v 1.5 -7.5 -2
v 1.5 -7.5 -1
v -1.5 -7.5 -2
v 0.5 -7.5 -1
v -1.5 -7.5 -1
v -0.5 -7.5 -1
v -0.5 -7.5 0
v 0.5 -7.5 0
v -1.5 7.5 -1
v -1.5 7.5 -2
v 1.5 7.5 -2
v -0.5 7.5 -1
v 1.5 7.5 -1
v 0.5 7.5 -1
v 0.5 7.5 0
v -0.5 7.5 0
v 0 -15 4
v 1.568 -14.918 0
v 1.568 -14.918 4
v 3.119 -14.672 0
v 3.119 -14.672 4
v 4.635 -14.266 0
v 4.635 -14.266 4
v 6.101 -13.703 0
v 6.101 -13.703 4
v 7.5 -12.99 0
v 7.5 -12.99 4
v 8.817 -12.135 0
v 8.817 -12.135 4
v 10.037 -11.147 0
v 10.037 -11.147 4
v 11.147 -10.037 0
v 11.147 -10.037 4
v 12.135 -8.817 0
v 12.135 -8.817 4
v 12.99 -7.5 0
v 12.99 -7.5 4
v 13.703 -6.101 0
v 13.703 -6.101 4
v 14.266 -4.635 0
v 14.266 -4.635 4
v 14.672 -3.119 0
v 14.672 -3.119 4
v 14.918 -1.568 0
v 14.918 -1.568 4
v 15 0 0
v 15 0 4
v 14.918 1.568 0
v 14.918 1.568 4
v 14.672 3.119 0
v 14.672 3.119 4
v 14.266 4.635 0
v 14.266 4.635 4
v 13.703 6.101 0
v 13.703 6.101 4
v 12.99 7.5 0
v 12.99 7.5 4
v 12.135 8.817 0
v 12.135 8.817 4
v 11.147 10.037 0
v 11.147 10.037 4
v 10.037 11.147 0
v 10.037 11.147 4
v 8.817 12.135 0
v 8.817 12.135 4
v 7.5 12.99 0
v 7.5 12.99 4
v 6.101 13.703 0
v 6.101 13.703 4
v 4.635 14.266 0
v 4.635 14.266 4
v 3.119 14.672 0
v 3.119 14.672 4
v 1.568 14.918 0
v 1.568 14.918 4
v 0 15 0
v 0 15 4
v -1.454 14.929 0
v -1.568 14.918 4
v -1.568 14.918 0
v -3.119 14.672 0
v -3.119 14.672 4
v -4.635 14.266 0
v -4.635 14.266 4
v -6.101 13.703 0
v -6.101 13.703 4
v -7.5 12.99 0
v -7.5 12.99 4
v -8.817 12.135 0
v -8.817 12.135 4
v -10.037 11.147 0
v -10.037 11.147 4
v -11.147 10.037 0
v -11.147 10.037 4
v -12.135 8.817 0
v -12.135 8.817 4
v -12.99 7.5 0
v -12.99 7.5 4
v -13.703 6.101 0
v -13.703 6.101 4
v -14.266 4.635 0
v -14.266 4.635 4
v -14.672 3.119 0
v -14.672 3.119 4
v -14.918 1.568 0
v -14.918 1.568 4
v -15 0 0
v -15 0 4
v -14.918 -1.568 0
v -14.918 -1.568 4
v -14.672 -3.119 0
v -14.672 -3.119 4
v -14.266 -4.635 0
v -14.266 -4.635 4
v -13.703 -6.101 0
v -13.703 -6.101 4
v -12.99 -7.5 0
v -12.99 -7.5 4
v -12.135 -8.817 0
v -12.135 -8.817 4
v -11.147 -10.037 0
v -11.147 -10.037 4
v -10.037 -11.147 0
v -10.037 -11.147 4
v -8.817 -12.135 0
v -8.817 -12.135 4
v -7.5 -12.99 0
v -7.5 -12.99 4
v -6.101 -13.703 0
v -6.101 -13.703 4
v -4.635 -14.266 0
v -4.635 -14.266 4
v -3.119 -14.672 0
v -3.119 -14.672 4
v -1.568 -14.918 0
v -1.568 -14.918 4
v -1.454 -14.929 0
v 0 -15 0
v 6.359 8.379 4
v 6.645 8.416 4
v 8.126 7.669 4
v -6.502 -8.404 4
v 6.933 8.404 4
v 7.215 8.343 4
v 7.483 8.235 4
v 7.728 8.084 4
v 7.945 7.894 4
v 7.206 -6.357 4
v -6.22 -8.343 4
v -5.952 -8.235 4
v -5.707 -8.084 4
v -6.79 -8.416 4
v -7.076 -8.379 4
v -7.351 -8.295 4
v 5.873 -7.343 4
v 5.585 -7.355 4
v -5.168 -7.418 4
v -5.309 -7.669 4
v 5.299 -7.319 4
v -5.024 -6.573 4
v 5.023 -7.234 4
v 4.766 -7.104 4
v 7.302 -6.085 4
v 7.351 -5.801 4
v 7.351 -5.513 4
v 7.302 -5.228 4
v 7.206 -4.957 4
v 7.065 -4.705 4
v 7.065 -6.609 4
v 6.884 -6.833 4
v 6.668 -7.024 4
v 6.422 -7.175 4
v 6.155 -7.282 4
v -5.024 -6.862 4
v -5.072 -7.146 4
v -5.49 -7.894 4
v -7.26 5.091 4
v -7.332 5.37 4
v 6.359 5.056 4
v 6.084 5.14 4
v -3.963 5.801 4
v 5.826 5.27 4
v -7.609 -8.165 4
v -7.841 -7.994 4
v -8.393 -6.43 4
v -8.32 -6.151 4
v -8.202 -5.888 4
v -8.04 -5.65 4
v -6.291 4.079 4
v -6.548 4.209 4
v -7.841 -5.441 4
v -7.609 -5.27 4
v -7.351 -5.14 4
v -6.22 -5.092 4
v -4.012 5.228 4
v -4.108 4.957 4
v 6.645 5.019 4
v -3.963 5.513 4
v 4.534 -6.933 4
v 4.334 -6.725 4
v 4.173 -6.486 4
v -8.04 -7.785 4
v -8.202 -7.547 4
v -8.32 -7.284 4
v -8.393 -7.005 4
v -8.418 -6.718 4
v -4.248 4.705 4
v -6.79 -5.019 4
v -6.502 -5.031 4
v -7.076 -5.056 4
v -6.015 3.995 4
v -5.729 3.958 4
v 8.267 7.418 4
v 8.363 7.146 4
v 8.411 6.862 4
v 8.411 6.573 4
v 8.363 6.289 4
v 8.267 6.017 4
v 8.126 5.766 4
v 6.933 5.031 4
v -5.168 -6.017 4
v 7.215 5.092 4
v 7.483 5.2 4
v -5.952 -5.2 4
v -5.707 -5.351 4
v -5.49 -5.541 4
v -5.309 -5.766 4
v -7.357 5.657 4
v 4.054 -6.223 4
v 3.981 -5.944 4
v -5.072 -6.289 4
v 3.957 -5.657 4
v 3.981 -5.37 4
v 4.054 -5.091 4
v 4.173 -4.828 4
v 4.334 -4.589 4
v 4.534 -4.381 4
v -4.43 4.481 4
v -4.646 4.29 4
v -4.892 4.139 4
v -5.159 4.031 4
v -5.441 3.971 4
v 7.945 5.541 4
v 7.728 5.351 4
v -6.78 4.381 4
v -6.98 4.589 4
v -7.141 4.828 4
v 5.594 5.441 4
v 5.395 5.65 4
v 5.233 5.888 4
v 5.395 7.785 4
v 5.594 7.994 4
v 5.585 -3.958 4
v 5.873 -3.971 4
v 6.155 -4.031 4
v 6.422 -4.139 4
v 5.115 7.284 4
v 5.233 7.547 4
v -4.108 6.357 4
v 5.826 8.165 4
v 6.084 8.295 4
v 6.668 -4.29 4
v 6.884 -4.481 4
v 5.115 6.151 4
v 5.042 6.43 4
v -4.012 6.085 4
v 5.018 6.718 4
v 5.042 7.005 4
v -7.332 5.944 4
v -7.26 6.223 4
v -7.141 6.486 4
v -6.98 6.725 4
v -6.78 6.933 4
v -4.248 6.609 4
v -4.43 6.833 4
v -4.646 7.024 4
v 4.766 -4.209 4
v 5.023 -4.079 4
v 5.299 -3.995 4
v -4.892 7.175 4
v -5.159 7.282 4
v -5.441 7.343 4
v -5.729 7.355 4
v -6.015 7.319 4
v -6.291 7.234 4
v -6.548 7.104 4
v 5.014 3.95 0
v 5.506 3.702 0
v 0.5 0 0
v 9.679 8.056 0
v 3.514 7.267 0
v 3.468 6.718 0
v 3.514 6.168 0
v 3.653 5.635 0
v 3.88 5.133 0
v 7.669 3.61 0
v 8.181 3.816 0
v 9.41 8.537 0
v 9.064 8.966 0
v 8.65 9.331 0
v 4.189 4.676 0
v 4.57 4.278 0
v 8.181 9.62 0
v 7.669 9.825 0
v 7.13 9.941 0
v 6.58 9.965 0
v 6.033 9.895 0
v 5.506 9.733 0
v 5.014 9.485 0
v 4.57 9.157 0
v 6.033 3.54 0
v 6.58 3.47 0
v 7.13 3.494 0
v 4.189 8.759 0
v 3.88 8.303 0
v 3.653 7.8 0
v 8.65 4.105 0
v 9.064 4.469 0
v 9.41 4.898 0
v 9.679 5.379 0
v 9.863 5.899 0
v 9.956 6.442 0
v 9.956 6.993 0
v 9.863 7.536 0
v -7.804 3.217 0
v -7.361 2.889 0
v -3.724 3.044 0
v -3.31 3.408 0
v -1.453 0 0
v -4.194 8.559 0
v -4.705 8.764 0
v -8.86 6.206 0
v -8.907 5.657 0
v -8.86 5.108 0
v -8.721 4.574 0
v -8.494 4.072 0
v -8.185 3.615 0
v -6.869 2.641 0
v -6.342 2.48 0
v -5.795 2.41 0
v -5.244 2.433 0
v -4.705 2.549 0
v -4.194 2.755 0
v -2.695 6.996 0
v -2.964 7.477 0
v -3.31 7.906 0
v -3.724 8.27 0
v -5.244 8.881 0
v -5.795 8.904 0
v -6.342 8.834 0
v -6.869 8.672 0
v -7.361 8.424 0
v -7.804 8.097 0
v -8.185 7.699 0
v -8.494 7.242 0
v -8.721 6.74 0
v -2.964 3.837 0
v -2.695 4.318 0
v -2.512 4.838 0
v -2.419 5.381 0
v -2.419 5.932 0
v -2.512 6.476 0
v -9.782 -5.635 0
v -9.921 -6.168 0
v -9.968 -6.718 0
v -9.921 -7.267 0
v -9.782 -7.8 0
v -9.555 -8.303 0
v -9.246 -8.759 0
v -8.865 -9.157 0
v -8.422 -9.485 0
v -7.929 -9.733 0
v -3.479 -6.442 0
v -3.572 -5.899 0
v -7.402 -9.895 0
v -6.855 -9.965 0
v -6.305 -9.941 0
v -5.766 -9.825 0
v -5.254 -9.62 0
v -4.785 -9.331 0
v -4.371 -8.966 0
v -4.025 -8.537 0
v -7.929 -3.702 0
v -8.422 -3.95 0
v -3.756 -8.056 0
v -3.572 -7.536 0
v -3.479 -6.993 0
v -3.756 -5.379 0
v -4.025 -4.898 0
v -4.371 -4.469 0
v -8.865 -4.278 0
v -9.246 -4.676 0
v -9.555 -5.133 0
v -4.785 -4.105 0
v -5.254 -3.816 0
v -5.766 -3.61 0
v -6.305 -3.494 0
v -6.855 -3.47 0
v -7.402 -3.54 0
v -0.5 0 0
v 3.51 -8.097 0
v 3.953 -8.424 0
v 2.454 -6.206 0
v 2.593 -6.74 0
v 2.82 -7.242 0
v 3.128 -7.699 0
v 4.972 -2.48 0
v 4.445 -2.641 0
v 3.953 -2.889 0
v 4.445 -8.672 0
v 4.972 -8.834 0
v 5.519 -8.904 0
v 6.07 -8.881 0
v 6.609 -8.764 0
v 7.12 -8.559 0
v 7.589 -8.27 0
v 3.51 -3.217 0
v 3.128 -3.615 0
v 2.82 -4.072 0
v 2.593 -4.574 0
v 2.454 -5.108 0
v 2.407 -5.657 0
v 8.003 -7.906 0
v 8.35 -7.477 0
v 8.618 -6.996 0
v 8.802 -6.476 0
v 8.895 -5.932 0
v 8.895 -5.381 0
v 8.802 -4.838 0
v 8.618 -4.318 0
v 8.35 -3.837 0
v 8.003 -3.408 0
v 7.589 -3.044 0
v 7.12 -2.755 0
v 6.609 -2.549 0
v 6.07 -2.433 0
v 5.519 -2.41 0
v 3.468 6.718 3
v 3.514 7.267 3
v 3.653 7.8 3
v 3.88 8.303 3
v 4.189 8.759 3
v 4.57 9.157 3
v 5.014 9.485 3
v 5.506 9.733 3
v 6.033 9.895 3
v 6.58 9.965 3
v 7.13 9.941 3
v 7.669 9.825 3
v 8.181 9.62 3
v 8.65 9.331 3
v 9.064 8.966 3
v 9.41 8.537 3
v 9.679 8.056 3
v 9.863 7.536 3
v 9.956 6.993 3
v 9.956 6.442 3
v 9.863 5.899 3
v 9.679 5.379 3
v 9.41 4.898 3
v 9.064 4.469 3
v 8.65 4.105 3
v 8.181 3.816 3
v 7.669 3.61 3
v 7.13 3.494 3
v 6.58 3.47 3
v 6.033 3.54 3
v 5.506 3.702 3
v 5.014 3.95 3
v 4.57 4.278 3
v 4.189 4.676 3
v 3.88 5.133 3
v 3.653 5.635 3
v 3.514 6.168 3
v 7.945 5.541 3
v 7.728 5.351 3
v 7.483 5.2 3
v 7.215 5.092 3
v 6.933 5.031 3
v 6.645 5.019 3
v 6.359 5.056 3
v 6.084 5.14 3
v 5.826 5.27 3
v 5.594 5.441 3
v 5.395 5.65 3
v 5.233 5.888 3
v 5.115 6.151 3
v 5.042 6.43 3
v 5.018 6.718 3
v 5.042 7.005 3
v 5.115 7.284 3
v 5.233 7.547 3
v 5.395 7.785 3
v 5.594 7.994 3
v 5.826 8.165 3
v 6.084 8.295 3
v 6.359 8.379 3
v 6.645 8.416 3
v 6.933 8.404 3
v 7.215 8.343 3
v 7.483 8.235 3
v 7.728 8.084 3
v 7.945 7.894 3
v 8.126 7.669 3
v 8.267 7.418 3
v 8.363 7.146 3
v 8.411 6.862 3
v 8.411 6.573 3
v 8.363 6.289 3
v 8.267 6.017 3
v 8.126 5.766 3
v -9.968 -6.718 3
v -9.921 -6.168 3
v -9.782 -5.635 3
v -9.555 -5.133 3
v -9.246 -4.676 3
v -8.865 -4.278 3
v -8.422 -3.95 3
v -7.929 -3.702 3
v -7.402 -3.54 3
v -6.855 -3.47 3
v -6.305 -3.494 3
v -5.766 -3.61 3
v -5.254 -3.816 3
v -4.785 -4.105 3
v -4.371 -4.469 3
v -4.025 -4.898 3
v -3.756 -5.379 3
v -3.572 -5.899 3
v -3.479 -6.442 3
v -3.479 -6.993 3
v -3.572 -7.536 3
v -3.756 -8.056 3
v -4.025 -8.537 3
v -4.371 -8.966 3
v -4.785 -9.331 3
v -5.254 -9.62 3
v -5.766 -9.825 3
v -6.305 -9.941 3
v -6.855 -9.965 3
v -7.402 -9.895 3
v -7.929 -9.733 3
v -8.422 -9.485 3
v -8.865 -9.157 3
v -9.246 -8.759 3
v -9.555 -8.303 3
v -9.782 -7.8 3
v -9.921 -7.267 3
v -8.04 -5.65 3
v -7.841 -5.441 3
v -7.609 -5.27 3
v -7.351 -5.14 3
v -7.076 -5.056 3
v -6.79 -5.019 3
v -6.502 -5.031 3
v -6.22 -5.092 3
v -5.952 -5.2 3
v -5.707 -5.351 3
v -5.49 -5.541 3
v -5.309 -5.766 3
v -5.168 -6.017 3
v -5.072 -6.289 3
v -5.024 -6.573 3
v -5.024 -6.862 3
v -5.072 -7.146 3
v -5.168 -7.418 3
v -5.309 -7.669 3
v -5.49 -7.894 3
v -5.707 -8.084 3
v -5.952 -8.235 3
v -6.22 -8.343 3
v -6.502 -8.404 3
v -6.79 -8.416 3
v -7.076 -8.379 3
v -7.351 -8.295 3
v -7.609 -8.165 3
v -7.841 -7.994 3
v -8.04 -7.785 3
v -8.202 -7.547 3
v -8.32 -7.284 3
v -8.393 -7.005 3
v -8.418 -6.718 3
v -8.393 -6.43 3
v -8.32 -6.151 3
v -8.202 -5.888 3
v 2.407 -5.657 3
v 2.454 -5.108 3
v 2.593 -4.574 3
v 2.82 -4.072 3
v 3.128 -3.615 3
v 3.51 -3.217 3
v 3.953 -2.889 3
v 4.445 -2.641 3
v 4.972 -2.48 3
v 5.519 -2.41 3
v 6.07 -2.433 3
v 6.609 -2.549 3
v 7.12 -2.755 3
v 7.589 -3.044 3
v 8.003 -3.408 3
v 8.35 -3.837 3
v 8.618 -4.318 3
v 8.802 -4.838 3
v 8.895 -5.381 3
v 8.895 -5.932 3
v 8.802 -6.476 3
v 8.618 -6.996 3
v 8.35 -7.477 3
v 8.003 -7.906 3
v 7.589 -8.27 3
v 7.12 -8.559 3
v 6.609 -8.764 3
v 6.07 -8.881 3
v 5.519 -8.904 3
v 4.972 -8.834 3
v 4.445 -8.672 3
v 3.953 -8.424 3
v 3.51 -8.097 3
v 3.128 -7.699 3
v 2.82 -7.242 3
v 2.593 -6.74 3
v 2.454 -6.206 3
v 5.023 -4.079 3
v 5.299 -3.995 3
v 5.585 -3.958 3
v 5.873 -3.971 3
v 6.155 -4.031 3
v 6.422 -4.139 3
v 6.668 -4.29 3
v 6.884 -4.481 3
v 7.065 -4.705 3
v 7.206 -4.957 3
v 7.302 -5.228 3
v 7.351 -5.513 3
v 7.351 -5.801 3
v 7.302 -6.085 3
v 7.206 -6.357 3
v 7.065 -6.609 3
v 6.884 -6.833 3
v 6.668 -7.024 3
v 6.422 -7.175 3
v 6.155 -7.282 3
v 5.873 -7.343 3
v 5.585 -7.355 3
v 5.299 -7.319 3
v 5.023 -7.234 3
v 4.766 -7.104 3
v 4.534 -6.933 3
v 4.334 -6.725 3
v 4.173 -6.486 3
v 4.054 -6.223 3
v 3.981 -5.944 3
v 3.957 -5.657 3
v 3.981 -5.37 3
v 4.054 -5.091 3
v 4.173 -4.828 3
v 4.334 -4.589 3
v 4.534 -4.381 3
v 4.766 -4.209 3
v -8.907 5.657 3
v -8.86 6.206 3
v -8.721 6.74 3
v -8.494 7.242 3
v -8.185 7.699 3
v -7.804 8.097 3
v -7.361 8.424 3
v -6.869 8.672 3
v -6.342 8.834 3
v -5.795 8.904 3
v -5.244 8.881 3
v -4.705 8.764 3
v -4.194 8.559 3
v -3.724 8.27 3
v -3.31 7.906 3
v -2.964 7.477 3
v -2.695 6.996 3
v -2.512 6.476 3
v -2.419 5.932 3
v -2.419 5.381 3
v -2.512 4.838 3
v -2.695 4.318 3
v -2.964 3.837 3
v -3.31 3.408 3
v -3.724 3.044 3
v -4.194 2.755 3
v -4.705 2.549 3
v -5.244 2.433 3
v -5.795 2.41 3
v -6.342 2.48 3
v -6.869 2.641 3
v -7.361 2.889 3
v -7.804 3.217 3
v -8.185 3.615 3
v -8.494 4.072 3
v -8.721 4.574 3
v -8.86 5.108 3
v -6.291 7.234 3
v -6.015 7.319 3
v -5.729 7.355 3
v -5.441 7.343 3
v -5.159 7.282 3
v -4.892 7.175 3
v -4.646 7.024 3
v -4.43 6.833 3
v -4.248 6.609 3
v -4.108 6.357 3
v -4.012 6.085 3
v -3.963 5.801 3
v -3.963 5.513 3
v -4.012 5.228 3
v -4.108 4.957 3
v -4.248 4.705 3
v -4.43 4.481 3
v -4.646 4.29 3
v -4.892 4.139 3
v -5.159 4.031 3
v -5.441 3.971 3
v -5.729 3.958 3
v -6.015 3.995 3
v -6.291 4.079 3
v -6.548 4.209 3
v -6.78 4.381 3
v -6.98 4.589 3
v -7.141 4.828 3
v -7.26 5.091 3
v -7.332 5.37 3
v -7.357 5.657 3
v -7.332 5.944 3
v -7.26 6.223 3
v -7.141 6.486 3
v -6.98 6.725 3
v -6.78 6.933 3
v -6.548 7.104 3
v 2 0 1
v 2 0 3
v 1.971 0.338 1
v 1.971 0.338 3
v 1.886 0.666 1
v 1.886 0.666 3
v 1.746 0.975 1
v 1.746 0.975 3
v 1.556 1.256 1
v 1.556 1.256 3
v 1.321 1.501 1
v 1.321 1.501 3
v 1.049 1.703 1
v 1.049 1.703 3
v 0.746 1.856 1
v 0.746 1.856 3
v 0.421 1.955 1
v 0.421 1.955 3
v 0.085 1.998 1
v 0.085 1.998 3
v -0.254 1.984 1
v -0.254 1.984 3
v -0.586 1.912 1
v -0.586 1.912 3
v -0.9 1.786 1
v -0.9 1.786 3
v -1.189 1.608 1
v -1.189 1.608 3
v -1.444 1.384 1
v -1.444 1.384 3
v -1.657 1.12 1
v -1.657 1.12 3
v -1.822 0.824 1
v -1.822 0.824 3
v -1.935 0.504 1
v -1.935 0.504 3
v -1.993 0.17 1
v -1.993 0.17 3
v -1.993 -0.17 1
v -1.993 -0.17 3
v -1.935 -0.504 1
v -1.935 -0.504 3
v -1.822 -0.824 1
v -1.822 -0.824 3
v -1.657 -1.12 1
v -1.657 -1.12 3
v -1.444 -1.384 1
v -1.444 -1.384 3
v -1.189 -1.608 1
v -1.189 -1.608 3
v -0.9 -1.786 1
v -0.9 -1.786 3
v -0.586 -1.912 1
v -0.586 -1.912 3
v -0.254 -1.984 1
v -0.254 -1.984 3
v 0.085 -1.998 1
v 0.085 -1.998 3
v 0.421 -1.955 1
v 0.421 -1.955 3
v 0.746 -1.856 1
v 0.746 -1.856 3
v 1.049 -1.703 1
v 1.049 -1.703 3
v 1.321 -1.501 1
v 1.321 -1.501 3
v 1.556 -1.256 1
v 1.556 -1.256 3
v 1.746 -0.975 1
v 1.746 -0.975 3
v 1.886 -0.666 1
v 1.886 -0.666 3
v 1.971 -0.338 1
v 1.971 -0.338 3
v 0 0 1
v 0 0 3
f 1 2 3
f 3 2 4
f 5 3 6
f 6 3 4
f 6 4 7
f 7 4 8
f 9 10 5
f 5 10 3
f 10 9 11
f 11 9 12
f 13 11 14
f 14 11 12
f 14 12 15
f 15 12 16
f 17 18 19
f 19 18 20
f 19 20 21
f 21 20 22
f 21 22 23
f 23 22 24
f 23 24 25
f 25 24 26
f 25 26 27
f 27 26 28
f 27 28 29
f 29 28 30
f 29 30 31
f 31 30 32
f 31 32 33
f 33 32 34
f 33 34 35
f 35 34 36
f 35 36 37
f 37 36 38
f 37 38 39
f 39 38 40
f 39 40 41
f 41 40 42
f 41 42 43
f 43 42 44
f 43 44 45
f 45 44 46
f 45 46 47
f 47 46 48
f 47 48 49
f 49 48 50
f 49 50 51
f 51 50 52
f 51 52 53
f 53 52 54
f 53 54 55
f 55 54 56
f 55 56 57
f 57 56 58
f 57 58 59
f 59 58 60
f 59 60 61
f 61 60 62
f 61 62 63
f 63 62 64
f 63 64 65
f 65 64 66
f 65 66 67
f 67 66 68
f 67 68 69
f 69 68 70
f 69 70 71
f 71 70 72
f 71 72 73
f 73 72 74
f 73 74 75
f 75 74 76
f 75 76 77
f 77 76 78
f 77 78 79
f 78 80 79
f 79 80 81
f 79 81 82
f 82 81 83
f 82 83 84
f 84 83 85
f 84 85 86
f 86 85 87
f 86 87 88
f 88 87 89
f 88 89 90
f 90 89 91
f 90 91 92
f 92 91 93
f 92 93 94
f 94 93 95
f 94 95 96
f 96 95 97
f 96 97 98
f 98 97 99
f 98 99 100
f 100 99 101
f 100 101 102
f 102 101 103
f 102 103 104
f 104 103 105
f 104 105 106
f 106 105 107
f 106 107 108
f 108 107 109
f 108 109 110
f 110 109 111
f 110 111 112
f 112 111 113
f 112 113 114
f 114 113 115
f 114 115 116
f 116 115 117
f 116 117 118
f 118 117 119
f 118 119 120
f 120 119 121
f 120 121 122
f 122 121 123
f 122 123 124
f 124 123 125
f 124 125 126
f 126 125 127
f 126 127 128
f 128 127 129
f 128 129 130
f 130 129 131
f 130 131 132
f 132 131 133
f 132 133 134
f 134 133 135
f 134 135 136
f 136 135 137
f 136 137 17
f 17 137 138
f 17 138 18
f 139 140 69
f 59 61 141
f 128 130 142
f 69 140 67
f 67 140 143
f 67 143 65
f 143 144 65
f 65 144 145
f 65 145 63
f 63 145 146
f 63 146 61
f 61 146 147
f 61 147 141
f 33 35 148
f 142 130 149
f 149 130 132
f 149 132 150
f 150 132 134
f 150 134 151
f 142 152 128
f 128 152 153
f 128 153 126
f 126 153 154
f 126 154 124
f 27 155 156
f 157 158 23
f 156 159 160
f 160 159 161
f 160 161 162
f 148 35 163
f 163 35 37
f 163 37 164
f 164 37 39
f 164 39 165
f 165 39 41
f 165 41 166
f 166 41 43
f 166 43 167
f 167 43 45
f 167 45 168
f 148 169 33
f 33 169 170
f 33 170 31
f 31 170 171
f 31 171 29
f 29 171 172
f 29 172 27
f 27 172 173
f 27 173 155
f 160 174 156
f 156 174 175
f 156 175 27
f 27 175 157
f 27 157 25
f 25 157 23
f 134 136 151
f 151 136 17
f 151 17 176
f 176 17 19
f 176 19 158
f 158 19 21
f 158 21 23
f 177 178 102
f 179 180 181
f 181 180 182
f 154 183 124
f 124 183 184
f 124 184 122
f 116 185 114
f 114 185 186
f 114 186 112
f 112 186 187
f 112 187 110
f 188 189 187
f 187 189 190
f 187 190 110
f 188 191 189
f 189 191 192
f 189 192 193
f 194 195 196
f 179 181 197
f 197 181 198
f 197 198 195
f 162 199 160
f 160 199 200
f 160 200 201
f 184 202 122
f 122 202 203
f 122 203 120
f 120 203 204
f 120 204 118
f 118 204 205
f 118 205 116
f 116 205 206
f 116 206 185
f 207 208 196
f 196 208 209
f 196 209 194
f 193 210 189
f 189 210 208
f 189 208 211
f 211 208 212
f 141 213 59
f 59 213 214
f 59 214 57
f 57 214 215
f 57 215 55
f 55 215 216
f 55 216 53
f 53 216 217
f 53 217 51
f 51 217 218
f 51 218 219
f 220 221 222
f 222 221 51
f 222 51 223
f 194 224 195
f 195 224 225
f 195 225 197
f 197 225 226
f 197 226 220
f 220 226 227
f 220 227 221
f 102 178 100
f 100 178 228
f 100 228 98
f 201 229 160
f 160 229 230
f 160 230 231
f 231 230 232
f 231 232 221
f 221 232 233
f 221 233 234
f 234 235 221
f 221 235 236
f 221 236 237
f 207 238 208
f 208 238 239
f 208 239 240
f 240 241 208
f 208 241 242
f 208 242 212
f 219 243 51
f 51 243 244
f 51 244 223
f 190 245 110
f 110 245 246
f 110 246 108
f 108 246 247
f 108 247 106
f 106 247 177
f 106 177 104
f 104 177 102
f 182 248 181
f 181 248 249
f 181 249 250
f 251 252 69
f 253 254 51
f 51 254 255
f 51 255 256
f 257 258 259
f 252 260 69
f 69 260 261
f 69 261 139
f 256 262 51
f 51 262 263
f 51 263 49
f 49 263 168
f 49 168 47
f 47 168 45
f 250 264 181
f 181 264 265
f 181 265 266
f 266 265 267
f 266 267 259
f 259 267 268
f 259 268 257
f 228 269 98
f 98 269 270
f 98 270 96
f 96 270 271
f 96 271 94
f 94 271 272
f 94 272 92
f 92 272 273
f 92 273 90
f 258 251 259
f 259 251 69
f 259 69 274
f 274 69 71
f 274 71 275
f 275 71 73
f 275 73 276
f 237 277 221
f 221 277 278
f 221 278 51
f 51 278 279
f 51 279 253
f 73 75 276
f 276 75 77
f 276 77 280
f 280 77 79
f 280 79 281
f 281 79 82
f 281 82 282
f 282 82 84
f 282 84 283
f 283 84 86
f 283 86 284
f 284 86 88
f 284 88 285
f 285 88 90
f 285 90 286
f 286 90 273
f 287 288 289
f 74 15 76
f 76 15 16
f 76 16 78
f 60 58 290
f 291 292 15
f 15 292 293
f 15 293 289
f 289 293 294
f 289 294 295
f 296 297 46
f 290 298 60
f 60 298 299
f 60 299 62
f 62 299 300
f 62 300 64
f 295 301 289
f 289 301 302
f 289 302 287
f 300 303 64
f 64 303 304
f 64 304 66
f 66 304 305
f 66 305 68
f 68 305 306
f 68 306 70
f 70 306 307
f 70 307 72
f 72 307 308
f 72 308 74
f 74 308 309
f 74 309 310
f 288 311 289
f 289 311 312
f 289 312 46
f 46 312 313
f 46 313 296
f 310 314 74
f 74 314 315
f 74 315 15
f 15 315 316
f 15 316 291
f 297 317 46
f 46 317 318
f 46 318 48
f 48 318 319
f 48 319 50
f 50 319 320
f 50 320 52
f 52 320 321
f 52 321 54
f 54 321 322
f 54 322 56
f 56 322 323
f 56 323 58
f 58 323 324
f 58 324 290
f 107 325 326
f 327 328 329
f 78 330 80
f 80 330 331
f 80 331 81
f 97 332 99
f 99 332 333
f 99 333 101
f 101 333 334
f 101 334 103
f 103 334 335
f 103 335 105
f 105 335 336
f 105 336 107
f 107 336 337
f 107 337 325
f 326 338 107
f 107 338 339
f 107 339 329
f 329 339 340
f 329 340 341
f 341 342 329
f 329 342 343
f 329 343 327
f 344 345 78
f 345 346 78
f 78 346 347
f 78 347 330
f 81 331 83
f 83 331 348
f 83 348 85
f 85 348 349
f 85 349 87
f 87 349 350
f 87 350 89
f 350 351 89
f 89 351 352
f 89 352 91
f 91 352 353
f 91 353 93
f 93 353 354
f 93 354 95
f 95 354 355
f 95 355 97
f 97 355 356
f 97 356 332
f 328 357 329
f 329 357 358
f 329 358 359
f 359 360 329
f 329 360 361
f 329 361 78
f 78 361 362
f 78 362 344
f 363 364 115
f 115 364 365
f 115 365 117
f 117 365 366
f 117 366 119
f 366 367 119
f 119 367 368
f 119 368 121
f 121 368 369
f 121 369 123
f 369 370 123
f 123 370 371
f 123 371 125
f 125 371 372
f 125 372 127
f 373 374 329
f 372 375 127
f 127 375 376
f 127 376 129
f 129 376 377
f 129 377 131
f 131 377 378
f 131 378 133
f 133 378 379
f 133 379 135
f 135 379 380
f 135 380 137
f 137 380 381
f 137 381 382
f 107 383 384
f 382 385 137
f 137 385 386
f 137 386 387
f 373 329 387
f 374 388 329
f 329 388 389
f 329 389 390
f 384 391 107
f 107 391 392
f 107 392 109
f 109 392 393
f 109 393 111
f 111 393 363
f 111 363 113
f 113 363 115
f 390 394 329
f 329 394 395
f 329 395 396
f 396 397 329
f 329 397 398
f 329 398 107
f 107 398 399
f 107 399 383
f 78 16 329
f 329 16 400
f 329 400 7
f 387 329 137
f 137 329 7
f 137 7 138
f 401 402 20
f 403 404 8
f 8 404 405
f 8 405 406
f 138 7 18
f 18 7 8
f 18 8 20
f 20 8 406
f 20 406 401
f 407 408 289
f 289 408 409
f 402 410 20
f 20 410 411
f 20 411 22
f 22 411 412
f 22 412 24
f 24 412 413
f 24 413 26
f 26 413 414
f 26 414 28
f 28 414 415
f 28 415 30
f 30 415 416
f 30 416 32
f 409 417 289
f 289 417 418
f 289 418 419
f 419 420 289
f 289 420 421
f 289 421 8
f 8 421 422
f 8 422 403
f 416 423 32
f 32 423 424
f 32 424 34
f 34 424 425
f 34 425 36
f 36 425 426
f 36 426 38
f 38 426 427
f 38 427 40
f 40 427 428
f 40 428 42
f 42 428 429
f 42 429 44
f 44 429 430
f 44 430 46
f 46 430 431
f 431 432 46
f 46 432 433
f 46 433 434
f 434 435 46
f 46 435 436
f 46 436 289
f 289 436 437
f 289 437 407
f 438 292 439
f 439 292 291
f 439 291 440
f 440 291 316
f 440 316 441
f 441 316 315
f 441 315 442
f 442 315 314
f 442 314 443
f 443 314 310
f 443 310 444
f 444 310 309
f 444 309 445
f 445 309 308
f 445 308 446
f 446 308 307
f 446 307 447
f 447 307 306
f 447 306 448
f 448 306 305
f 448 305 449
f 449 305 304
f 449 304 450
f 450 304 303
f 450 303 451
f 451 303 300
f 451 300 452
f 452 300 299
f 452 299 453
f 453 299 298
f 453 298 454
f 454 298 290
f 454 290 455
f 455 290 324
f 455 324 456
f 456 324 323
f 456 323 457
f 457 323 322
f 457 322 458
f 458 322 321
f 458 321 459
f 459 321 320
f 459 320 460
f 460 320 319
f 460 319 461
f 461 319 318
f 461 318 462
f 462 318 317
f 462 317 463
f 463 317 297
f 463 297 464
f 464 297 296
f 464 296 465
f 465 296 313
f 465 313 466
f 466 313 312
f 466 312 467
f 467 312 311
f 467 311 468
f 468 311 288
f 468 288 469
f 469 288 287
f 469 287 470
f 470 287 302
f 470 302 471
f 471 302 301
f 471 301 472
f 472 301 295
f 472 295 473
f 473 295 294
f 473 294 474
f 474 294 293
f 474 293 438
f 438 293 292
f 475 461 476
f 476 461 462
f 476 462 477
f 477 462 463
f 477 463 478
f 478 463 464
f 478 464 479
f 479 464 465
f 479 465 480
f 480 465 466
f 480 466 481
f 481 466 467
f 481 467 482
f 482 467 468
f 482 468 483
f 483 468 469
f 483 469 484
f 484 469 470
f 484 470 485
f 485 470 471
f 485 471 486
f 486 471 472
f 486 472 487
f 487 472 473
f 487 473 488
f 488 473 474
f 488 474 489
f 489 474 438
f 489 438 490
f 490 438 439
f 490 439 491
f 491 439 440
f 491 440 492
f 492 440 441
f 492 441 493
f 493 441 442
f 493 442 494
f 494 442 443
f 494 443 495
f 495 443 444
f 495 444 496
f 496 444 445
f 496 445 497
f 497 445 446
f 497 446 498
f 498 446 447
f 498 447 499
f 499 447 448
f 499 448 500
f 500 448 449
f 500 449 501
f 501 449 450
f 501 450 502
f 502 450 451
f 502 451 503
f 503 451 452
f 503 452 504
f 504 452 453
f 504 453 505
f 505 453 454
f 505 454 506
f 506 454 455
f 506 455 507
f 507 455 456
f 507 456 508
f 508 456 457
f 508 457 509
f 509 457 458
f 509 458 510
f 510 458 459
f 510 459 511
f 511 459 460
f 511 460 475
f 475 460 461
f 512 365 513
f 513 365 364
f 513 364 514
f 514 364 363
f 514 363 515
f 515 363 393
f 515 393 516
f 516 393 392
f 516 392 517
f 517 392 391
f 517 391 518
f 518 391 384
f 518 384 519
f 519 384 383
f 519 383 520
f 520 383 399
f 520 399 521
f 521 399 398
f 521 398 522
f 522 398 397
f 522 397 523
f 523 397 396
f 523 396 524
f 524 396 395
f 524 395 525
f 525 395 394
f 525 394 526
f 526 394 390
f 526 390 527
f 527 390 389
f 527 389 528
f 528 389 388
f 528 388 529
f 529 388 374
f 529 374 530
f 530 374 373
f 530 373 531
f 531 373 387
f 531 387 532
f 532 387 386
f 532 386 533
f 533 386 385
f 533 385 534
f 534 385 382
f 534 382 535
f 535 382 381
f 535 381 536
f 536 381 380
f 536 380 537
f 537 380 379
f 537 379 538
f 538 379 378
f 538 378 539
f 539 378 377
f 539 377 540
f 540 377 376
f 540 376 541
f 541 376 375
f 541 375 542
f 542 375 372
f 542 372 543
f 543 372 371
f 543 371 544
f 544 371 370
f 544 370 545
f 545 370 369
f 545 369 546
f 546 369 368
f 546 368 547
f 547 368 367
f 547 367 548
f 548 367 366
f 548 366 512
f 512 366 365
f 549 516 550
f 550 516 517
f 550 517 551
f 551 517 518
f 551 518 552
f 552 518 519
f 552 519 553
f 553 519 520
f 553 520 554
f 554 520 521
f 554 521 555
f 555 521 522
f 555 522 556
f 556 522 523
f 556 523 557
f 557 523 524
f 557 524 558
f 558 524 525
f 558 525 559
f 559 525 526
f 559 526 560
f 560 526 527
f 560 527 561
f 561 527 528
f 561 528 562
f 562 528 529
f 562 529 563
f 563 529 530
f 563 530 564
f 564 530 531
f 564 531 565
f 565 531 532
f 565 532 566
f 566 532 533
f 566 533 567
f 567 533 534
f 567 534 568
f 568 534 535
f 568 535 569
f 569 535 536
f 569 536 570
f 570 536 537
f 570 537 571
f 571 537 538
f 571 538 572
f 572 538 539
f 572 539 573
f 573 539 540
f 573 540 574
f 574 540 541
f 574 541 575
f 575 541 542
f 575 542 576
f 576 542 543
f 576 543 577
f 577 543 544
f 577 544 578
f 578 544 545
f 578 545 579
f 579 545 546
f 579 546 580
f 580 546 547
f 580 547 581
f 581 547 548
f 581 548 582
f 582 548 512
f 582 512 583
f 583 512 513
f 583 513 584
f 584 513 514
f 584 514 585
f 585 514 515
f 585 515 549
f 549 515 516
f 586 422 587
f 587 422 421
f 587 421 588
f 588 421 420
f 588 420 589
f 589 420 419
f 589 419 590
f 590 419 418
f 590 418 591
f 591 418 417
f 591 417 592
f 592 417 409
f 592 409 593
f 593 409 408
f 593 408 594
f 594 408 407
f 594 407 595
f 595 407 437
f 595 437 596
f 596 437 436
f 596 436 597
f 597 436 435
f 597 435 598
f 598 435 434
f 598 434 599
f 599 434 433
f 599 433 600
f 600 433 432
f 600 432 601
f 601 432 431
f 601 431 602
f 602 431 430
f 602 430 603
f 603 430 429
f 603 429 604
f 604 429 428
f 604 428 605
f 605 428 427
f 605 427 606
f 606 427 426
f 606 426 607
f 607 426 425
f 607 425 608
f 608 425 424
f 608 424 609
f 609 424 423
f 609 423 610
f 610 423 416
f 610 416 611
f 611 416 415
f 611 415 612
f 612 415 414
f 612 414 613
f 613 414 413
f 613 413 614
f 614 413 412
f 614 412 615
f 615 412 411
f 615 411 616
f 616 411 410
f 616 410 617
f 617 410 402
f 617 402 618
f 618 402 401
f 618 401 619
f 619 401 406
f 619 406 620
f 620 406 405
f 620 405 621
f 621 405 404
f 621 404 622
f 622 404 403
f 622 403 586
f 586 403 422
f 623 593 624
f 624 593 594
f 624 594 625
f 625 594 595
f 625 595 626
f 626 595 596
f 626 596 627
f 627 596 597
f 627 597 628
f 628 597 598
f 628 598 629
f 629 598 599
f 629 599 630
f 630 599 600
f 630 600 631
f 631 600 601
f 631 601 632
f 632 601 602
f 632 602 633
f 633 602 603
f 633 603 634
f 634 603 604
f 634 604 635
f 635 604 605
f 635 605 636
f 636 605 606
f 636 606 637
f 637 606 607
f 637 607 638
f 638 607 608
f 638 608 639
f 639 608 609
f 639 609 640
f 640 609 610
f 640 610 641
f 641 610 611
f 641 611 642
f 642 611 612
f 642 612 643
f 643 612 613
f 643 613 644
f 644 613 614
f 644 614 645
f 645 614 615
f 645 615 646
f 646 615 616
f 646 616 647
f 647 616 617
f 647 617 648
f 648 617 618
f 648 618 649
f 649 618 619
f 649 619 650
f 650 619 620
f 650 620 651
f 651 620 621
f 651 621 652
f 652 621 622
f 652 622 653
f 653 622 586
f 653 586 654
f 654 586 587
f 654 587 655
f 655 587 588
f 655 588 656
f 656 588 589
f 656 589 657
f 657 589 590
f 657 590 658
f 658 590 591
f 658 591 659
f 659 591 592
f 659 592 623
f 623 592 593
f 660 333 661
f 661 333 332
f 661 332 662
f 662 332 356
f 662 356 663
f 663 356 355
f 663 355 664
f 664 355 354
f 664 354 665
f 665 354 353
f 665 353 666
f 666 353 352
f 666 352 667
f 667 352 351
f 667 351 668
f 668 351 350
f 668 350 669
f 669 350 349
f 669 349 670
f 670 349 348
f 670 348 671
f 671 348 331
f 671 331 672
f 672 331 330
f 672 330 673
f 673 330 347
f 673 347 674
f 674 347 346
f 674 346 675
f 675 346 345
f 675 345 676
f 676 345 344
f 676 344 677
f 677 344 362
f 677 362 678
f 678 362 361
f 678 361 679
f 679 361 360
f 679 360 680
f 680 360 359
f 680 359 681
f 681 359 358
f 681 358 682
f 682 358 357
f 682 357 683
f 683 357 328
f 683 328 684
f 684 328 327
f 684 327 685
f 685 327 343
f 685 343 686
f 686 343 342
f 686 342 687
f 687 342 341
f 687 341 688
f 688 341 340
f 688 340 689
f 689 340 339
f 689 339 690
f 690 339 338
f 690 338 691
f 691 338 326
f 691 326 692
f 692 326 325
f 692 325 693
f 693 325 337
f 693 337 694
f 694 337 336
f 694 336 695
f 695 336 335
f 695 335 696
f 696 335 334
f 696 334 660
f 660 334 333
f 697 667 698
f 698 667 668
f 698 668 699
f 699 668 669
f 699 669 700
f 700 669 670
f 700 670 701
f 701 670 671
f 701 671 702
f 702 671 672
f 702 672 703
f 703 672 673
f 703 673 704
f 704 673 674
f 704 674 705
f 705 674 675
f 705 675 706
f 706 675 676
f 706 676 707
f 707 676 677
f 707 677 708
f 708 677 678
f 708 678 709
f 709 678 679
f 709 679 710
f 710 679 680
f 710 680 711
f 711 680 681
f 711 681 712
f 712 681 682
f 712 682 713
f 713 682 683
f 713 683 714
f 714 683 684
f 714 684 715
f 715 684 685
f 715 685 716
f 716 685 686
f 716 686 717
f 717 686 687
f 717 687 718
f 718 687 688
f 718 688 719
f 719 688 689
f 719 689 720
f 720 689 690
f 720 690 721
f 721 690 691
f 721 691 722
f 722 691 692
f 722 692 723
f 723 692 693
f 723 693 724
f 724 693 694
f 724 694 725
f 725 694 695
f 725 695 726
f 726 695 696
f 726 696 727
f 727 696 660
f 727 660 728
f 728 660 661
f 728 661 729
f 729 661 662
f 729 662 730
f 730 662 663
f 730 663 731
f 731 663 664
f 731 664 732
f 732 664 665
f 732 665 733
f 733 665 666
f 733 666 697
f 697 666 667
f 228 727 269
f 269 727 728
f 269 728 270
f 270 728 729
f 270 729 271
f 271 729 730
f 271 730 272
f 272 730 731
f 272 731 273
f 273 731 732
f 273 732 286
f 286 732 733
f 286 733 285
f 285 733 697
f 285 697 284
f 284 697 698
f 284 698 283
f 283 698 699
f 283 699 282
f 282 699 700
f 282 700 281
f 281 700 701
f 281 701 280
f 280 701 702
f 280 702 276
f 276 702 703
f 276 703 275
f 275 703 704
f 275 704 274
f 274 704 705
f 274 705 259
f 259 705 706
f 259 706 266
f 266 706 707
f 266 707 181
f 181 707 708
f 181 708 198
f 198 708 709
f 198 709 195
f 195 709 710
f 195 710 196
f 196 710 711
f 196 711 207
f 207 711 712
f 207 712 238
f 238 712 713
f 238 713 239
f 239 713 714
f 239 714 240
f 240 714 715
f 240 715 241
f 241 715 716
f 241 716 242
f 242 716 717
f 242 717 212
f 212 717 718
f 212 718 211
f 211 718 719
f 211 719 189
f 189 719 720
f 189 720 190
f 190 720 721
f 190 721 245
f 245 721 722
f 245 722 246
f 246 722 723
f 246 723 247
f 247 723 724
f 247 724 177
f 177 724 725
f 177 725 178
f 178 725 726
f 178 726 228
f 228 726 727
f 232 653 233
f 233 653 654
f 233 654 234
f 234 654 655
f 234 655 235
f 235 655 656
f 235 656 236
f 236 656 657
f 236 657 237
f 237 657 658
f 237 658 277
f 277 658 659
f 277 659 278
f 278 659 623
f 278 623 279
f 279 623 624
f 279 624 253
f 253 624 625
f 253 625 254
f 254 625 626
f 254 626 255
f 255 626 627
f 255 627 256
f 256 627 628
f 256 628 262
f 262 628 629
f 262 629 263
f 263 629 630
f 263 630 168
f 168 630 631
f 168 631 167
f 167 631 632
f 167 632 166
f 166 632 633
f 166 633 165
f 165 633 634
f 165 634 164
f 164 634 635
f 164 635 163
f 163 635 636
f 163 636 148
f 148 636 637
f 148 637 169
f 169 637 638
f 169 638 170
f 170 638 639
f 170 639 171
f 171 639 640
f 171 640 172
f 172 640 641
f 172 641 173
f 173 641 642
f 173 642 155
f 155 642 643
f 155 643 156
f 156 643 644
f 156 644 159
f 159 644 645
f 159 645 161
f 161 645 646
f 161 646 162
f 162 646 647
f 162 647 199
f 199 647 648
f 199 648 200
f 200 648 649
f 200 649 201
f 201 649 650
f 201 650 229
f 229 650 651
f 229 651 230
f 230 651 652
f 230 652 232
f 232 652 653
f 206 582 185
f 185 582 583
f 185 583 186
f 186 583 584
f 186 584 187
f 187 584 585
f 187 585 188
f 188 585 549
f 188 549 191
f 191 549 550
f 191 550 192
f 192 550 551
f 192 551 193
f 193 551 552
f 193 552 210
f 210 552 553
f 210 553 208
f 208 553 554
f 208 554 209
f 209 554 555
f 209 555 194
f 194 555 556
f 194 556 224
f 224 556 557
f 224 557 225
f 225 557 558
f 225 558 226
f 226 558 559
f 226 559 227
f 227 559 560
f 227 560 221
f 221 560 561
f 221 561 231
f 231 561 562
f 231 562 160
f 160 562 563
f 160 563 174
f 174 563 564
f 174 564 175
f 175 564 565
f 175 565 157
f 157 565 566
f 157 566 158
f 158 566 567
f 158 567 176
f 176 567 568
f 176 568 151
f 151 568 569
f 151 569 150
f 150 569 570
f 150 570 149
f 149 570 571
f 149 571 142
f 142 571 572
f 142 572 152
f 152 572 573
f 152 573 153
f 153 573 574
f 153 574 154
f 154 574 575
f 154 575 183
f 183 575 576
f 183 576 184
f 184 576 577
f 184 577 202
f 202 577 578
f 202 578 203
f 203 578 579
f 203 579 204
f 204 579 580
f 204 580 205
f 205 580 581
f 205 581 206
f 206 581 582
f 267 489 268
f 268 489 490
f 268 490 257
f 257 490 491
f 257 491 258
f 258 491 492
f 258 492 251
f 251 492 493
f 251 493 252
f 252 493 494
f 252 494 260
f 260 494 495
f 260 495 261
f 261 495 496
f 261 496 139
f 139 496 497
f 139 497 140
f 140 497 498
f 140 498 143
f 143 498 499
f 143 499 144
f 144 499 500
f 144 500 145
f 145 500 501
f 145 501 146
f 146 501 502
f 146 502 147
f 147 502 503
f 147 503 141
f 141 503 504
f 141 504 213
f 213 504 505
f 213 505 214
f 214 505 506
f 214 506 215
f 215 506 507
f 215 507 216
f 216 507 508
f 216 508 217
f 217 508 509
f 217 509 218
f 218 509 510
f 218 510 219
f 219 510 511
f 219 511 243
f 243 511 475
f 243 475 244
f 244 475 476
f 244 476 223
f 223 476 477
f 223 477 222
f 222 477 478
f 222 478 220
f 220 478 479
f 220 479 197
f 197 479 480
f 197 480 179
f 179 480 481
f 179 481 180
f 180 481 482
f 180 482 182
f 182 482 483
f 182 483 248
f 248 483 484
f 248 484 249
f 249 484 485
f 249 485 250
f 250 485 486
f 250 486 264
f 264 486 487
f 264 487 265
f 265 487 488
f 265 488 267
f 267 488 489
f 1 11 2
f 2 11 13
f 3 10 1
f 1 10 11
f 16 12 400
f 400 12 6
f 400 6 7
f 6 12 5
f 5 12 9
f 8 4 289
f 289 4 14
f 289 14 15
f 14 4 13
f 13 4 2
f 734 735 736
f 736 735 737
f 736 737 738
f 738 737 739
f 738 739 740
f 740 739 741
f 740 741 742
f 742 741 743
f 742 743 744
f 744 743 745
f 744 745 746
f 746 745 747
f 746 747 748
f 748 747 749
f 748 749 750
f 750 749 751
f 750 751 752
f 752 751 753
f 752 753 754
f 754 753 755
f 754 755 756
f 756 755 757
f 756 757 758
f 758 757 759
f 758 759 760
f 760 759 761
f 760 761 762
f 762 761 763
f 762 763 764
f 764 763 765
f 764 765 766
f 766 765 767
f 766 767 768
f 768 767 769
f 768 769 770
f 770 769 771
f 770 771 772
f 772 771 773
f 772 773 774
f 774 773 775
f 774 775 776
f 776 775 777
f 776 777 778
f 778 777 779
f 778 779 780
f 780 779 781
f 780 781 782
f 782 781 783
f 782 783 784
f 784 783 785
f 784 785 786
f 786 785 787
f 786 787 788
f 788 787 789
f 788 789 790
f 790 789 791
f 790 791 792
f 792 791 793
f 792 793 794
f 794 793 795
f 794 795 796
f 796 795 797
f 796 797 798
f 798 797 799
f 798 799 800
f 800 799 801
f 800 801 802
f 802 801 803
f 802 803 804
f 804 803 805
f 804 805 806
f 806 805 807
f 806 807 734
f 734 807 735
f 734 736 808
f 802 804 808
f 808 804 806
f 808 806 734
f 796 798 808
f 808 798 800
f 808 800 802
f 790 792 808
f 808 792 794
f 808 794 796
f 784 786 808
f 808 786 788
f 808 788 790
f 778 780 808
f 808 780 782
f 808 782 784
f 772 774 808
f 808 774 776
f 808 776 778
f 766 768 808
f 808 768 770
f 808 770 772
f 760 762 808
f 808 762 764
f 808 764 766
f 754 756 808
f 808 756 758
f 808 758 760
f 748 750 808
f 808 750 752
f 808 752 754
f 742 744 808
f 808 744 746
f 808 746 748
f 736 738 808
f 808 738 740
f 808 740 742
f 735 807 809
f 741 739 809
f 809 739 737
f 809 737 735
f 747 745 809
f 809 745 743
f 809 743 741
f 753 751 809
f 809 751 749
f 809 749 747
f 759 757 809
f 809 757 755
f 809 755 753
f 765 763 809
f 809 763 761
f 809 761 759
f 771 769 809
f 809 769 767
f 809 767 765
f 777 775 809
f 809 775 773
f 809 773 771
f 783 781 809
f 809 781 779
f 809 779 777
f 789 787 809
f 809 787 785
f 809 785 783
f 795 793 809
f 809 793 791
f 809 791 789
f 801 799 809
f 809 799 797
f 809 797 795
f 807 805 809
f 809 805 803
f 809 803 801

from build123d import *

# Parameters (mm, degrees)
SKETCH1_R           = 15
BOSS_EXTRUDE1_DEPTH = 4
SKETCH2_R           = 3.25
CUT_EXTRUDE1_DEPTH  = 3
SKETCH3_R           = 1.7
CUT_EXTRUDE2_DEPTH  = 22.587033145
SKETCH4_R           = 2
CUT_EXTRUDE3_DEPTH  = 2
SKETCH5_W           = 3
SKETCH5_H           = 15
BOSS_EXTRUDE2_DEPTH = 2
SKETCH7_W           = 1
SKETCH7_H           = 15
CUT_EXTRUDE4_DEPTH  = 1


with BuildPart() as part:
    # Sketch1 → Boss-Extrude1 (new body)
    with BuildSketch(Plane.XY):
        Circle(SKETCH1_R)
    extrude(amount=BOSS_EXTRUDE1_DEPTH)

    # Sketch2 → Cut-Extrude1 (cut)
    with BuildSketch(Plane(origin=(0, 0, 0), x_dir=(-1, 0, 0), z_dir=(0, 0, -1))):
        with Locations((-6.717514421, 6.717514421)):
            Circle(SKETCH2_R)
        with Locations((6.717514421, -6.717514421)):
            Circle(SKETCH2_R)
        with Locations((-5.656854249, -5.656854249)):
            Circle(SKETCH2_R)
        with Locations((5.656854249, 5.656854249)):
            Circle(SKETCH2_R)
    extrude(amount=-CUT_EXTRUDE1_DEPTH, mode=Mode.SUBTRACT)

    # Sketch3 → Cut-Extrude2 (cut, through all)
    with BuildSketch(Plane(origin=(0, 0, 0), x_dir=(-1, 0, 0), z_dir=(0, 0, -1))):
        with Locations((-6.717514421, 6.717514421)):
            Circle(SKETCH3_R)
        with Locations((5.656854249, 5.656854249)):
            Circle(SKETCH3_R)
        with Locations((6.717514421, -6.717514421)):
            Circle(SKETCH3_R)
        with Locations((-5.656854249, -5.656854249)):
            Circle(SKETCH3_R)
    extrude(amount=-CUT_EXTRUDE2_DEPTH, mode=Mode.SUBTRACT)

    # Sketch4 → Cut-Extrude3 (cut)
    with BuildSketch(Plane.XY.offset(3)):
        Circle(SKETCH4_R)
    extrude(amount=-CUT_EXTRUDE3_DEPTH, mode=Mode.SUBTRACT)

    # Sketch5 → Boss-Extrude2 (add)
    with BuildSketch(Plane.XY):
        Rectangle(SKETCH5_W, SKETCH5_H)
    extrude(amount=-BOSS_EXTRUDE2_DEPTH)

    # Sketch7 → Cut-Extrude4 (cut)
    with BuildSketch(Plane(origin=(0, 0, 0), x_dir=(-1, 0, 0), z_dir=(0, 0, -1))):
        with Locations((-1, 0)):
            Rectangle(SKETCH7_W, SKETCH7_H)
        with Locations((1, 0)):
            Rectangle(SKETCH7_W, SKETCH7_H)
    extrude(amount=CUT_EXTRUDE4_DEPTH, mode=Mode.SUBTRACT)


solid = part.part
